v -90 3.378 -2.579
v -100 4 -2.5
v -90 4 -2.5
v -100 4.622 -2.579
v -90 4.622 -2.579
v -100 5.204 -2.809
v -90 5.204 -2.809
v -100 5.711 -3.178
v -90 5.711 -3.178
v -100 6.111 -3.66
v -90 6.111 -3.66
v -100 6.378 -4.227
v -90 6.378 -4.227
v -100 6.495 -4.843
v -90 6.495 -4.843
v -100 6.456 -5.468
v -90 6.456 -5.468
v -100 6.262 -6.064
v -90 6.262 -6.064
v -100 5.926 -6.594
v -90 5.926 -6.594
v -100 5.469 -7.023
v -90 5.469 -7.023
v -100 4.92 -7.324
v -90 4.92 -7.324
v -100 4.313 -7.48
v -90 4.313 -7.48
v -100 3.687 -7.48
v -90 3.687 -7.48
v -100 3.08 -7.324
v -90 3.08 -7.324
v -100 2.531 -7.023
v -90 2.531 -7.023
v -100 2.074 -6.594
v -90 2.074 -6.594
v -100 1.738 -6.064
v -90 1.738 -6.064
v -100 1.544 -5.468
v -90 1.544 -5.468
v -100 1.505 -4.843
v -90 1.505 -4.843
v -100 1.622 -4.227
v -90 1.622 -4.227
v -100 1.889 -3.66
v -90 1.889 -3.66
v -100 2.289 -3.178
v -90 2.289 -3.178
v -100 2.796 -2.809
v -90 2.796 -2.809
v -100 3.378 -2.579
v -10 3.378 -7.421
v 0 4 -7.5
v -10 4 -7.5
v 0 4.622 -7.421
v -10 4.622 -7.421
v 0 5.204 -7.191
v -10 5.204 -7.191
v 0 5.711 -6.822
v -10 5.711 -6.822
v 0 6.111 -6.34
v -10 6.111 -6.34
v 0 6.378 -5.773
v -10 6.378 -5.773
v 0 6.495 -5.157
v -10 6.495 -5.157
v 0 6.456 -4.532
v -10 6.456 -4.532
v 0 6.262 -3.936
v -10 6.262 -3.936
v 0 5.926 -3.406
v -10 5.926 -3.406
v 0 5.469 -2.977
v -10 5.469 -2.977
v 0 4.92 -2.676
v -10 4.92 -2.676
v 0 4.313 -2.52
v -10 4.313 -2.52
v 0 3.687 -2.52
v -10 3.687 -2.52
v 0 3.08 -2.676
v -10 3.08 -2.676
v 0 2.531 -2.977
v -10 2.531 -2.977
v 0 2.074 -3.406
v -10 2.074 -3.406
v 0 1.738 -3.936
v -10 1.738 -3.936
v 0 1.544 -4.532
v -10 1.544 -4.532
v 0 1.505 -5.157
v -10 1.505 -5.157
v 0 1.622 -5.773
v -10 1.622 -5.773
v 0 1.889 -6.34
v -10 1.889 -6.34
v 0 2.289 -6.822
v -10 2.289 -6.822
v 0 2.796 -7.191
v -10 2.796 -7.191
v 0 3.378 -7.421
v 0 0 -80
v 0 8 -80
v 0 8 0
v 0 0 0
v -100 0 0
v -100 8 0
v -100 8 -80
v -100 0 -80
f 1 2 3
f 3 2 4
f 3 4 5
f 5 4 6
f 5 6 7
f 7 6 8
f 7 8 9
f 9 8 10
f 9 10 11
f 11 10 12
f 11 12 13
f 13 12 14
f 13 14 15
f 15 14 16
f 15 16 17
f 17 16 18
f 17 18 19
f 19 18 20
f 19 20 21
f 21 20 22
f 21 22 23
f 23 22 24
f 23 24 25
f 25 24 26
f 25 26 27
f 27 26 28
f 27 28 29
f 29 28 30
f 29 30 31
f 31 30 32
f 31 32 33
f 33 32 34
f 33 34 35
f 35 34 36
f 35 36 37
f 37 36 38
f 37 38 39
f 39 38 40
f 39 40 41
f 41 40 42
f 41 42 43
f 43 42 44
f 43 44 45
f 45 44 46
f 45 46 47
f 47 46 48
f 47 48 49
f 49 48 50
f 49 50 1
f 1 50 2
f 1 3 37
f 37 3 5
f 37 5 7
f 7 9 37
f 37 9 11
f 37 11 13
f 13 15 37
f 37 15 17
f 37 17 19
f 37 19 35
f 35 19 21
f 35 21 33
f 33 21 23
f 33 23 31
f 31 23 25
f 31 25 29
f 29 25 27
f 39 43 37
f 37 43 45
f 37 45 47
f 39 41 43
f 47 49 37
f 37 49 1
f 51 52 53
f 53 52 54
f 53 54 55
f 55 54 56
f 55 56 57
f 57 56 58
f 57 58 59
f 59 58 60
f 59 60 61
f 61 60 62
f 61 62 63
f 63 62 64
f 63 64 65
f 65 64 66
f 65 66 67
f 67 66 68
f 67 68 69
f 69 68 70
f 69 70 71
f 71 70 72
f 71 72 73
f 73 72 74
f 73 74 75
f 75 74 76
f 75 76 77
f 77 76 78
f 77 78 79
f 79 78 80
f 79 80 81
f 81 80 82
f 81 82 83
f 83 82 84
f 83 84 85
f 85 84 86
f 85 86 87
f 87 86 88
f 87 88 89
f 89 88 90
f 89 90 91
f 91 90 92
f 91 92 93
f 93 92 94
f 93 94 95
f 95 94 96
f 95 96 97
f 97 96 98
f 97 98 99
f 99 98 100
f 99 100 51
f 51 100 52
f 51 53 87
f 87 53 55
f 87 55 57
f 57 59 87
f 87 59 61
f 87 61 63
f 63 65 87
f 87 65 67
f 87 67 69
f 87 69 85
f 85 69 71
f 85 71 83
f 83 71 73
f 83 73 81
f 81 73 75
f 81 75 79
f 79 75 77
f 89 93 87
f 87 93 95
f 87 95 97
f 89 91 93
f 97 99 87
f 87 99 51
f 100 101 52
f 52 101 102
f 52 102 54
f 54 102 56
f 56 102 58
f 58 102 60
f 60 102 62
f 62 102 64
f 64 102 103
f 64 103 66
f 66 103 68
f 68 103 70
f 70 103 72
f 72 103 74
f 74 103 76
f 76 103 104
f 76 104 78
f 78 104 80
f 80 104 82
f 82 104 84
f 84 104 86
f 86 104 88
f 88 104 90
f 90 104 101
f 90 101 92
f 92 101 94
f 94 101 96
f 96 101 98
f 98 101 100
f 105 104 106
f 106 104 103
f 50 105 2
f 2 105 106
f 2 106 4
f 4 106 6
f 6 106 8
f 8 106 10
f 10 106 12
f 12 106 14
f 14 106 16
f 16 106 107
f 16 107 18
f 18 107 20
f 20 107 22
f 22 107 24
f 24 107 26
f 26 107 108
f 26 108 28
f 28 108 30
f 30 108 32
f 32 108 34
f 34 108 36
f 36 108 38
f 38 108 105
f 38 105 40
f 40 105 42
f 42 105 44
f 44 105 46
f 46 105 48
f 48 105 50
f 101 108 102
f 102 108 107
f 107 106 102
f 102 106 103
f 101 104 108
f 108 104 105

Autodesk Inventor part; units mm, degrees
ref_plane "YZ Plane" through (0, 0, 0) normal (1, 0, 0) x (0, 1, 0)
ref_plane "XZ Plane" through (0, 0, 0) normal (0, 1, 0) x (-1, 0, 0)
ref_plane "XY Plane" through (0, 0, 0) normal (0, 0, 1) x (1, 0, 0)
sketch "草圖1" plane through (0, 0, 0) normal (0, 1, 0) x (-1, 0, 0)
  line L0 (0, 0) -> (100, 0)
  line L1 (100, 0) -> (100, -80)
  line L2 (100, -80) -> (0, -80)
  line L3 (0, -80) -> (0, 0)
  dimension "d0" = 100
  dimension "d1" = 80
extrude "擠出1" add sketch "草圖1" along normal blind 8
sketch "草圖2" plane through (0, 0, 0) normal (1, 0, 0) x (0, 0, -1)
  circle A0 centre (5, 4) radius 2.5
  line L0 (0, 0) -> (0, 8) projected
  line L1 (0, 8) -> (80, 8) projected
  point P0 (0, 4)
  dimension "d4" = 5
  dimension "d5" = 5
  dimension "d6" = 4
extrude "擠出2" cut sketch "草圖2" against normal blind 10
sketch "草圖3" plane through (-100, 0, -80) normal (-1, 0, 0) x (0, 0, 1)
  circle A0 centre (75, 4) radius 2.5 projected
  circle A1 centre (75, 4) radius 2.5
  point P0 (80, 0)
extrude "擠出3" cut sketch "草圖3" against normal blind 10
sketch "草圖4" plane through (-100, 0, -80) normal (-1, 0, 0) x (0, 0, 1)
  point P0 (80, 0)
properties part number "MoneyCase_Lid"
